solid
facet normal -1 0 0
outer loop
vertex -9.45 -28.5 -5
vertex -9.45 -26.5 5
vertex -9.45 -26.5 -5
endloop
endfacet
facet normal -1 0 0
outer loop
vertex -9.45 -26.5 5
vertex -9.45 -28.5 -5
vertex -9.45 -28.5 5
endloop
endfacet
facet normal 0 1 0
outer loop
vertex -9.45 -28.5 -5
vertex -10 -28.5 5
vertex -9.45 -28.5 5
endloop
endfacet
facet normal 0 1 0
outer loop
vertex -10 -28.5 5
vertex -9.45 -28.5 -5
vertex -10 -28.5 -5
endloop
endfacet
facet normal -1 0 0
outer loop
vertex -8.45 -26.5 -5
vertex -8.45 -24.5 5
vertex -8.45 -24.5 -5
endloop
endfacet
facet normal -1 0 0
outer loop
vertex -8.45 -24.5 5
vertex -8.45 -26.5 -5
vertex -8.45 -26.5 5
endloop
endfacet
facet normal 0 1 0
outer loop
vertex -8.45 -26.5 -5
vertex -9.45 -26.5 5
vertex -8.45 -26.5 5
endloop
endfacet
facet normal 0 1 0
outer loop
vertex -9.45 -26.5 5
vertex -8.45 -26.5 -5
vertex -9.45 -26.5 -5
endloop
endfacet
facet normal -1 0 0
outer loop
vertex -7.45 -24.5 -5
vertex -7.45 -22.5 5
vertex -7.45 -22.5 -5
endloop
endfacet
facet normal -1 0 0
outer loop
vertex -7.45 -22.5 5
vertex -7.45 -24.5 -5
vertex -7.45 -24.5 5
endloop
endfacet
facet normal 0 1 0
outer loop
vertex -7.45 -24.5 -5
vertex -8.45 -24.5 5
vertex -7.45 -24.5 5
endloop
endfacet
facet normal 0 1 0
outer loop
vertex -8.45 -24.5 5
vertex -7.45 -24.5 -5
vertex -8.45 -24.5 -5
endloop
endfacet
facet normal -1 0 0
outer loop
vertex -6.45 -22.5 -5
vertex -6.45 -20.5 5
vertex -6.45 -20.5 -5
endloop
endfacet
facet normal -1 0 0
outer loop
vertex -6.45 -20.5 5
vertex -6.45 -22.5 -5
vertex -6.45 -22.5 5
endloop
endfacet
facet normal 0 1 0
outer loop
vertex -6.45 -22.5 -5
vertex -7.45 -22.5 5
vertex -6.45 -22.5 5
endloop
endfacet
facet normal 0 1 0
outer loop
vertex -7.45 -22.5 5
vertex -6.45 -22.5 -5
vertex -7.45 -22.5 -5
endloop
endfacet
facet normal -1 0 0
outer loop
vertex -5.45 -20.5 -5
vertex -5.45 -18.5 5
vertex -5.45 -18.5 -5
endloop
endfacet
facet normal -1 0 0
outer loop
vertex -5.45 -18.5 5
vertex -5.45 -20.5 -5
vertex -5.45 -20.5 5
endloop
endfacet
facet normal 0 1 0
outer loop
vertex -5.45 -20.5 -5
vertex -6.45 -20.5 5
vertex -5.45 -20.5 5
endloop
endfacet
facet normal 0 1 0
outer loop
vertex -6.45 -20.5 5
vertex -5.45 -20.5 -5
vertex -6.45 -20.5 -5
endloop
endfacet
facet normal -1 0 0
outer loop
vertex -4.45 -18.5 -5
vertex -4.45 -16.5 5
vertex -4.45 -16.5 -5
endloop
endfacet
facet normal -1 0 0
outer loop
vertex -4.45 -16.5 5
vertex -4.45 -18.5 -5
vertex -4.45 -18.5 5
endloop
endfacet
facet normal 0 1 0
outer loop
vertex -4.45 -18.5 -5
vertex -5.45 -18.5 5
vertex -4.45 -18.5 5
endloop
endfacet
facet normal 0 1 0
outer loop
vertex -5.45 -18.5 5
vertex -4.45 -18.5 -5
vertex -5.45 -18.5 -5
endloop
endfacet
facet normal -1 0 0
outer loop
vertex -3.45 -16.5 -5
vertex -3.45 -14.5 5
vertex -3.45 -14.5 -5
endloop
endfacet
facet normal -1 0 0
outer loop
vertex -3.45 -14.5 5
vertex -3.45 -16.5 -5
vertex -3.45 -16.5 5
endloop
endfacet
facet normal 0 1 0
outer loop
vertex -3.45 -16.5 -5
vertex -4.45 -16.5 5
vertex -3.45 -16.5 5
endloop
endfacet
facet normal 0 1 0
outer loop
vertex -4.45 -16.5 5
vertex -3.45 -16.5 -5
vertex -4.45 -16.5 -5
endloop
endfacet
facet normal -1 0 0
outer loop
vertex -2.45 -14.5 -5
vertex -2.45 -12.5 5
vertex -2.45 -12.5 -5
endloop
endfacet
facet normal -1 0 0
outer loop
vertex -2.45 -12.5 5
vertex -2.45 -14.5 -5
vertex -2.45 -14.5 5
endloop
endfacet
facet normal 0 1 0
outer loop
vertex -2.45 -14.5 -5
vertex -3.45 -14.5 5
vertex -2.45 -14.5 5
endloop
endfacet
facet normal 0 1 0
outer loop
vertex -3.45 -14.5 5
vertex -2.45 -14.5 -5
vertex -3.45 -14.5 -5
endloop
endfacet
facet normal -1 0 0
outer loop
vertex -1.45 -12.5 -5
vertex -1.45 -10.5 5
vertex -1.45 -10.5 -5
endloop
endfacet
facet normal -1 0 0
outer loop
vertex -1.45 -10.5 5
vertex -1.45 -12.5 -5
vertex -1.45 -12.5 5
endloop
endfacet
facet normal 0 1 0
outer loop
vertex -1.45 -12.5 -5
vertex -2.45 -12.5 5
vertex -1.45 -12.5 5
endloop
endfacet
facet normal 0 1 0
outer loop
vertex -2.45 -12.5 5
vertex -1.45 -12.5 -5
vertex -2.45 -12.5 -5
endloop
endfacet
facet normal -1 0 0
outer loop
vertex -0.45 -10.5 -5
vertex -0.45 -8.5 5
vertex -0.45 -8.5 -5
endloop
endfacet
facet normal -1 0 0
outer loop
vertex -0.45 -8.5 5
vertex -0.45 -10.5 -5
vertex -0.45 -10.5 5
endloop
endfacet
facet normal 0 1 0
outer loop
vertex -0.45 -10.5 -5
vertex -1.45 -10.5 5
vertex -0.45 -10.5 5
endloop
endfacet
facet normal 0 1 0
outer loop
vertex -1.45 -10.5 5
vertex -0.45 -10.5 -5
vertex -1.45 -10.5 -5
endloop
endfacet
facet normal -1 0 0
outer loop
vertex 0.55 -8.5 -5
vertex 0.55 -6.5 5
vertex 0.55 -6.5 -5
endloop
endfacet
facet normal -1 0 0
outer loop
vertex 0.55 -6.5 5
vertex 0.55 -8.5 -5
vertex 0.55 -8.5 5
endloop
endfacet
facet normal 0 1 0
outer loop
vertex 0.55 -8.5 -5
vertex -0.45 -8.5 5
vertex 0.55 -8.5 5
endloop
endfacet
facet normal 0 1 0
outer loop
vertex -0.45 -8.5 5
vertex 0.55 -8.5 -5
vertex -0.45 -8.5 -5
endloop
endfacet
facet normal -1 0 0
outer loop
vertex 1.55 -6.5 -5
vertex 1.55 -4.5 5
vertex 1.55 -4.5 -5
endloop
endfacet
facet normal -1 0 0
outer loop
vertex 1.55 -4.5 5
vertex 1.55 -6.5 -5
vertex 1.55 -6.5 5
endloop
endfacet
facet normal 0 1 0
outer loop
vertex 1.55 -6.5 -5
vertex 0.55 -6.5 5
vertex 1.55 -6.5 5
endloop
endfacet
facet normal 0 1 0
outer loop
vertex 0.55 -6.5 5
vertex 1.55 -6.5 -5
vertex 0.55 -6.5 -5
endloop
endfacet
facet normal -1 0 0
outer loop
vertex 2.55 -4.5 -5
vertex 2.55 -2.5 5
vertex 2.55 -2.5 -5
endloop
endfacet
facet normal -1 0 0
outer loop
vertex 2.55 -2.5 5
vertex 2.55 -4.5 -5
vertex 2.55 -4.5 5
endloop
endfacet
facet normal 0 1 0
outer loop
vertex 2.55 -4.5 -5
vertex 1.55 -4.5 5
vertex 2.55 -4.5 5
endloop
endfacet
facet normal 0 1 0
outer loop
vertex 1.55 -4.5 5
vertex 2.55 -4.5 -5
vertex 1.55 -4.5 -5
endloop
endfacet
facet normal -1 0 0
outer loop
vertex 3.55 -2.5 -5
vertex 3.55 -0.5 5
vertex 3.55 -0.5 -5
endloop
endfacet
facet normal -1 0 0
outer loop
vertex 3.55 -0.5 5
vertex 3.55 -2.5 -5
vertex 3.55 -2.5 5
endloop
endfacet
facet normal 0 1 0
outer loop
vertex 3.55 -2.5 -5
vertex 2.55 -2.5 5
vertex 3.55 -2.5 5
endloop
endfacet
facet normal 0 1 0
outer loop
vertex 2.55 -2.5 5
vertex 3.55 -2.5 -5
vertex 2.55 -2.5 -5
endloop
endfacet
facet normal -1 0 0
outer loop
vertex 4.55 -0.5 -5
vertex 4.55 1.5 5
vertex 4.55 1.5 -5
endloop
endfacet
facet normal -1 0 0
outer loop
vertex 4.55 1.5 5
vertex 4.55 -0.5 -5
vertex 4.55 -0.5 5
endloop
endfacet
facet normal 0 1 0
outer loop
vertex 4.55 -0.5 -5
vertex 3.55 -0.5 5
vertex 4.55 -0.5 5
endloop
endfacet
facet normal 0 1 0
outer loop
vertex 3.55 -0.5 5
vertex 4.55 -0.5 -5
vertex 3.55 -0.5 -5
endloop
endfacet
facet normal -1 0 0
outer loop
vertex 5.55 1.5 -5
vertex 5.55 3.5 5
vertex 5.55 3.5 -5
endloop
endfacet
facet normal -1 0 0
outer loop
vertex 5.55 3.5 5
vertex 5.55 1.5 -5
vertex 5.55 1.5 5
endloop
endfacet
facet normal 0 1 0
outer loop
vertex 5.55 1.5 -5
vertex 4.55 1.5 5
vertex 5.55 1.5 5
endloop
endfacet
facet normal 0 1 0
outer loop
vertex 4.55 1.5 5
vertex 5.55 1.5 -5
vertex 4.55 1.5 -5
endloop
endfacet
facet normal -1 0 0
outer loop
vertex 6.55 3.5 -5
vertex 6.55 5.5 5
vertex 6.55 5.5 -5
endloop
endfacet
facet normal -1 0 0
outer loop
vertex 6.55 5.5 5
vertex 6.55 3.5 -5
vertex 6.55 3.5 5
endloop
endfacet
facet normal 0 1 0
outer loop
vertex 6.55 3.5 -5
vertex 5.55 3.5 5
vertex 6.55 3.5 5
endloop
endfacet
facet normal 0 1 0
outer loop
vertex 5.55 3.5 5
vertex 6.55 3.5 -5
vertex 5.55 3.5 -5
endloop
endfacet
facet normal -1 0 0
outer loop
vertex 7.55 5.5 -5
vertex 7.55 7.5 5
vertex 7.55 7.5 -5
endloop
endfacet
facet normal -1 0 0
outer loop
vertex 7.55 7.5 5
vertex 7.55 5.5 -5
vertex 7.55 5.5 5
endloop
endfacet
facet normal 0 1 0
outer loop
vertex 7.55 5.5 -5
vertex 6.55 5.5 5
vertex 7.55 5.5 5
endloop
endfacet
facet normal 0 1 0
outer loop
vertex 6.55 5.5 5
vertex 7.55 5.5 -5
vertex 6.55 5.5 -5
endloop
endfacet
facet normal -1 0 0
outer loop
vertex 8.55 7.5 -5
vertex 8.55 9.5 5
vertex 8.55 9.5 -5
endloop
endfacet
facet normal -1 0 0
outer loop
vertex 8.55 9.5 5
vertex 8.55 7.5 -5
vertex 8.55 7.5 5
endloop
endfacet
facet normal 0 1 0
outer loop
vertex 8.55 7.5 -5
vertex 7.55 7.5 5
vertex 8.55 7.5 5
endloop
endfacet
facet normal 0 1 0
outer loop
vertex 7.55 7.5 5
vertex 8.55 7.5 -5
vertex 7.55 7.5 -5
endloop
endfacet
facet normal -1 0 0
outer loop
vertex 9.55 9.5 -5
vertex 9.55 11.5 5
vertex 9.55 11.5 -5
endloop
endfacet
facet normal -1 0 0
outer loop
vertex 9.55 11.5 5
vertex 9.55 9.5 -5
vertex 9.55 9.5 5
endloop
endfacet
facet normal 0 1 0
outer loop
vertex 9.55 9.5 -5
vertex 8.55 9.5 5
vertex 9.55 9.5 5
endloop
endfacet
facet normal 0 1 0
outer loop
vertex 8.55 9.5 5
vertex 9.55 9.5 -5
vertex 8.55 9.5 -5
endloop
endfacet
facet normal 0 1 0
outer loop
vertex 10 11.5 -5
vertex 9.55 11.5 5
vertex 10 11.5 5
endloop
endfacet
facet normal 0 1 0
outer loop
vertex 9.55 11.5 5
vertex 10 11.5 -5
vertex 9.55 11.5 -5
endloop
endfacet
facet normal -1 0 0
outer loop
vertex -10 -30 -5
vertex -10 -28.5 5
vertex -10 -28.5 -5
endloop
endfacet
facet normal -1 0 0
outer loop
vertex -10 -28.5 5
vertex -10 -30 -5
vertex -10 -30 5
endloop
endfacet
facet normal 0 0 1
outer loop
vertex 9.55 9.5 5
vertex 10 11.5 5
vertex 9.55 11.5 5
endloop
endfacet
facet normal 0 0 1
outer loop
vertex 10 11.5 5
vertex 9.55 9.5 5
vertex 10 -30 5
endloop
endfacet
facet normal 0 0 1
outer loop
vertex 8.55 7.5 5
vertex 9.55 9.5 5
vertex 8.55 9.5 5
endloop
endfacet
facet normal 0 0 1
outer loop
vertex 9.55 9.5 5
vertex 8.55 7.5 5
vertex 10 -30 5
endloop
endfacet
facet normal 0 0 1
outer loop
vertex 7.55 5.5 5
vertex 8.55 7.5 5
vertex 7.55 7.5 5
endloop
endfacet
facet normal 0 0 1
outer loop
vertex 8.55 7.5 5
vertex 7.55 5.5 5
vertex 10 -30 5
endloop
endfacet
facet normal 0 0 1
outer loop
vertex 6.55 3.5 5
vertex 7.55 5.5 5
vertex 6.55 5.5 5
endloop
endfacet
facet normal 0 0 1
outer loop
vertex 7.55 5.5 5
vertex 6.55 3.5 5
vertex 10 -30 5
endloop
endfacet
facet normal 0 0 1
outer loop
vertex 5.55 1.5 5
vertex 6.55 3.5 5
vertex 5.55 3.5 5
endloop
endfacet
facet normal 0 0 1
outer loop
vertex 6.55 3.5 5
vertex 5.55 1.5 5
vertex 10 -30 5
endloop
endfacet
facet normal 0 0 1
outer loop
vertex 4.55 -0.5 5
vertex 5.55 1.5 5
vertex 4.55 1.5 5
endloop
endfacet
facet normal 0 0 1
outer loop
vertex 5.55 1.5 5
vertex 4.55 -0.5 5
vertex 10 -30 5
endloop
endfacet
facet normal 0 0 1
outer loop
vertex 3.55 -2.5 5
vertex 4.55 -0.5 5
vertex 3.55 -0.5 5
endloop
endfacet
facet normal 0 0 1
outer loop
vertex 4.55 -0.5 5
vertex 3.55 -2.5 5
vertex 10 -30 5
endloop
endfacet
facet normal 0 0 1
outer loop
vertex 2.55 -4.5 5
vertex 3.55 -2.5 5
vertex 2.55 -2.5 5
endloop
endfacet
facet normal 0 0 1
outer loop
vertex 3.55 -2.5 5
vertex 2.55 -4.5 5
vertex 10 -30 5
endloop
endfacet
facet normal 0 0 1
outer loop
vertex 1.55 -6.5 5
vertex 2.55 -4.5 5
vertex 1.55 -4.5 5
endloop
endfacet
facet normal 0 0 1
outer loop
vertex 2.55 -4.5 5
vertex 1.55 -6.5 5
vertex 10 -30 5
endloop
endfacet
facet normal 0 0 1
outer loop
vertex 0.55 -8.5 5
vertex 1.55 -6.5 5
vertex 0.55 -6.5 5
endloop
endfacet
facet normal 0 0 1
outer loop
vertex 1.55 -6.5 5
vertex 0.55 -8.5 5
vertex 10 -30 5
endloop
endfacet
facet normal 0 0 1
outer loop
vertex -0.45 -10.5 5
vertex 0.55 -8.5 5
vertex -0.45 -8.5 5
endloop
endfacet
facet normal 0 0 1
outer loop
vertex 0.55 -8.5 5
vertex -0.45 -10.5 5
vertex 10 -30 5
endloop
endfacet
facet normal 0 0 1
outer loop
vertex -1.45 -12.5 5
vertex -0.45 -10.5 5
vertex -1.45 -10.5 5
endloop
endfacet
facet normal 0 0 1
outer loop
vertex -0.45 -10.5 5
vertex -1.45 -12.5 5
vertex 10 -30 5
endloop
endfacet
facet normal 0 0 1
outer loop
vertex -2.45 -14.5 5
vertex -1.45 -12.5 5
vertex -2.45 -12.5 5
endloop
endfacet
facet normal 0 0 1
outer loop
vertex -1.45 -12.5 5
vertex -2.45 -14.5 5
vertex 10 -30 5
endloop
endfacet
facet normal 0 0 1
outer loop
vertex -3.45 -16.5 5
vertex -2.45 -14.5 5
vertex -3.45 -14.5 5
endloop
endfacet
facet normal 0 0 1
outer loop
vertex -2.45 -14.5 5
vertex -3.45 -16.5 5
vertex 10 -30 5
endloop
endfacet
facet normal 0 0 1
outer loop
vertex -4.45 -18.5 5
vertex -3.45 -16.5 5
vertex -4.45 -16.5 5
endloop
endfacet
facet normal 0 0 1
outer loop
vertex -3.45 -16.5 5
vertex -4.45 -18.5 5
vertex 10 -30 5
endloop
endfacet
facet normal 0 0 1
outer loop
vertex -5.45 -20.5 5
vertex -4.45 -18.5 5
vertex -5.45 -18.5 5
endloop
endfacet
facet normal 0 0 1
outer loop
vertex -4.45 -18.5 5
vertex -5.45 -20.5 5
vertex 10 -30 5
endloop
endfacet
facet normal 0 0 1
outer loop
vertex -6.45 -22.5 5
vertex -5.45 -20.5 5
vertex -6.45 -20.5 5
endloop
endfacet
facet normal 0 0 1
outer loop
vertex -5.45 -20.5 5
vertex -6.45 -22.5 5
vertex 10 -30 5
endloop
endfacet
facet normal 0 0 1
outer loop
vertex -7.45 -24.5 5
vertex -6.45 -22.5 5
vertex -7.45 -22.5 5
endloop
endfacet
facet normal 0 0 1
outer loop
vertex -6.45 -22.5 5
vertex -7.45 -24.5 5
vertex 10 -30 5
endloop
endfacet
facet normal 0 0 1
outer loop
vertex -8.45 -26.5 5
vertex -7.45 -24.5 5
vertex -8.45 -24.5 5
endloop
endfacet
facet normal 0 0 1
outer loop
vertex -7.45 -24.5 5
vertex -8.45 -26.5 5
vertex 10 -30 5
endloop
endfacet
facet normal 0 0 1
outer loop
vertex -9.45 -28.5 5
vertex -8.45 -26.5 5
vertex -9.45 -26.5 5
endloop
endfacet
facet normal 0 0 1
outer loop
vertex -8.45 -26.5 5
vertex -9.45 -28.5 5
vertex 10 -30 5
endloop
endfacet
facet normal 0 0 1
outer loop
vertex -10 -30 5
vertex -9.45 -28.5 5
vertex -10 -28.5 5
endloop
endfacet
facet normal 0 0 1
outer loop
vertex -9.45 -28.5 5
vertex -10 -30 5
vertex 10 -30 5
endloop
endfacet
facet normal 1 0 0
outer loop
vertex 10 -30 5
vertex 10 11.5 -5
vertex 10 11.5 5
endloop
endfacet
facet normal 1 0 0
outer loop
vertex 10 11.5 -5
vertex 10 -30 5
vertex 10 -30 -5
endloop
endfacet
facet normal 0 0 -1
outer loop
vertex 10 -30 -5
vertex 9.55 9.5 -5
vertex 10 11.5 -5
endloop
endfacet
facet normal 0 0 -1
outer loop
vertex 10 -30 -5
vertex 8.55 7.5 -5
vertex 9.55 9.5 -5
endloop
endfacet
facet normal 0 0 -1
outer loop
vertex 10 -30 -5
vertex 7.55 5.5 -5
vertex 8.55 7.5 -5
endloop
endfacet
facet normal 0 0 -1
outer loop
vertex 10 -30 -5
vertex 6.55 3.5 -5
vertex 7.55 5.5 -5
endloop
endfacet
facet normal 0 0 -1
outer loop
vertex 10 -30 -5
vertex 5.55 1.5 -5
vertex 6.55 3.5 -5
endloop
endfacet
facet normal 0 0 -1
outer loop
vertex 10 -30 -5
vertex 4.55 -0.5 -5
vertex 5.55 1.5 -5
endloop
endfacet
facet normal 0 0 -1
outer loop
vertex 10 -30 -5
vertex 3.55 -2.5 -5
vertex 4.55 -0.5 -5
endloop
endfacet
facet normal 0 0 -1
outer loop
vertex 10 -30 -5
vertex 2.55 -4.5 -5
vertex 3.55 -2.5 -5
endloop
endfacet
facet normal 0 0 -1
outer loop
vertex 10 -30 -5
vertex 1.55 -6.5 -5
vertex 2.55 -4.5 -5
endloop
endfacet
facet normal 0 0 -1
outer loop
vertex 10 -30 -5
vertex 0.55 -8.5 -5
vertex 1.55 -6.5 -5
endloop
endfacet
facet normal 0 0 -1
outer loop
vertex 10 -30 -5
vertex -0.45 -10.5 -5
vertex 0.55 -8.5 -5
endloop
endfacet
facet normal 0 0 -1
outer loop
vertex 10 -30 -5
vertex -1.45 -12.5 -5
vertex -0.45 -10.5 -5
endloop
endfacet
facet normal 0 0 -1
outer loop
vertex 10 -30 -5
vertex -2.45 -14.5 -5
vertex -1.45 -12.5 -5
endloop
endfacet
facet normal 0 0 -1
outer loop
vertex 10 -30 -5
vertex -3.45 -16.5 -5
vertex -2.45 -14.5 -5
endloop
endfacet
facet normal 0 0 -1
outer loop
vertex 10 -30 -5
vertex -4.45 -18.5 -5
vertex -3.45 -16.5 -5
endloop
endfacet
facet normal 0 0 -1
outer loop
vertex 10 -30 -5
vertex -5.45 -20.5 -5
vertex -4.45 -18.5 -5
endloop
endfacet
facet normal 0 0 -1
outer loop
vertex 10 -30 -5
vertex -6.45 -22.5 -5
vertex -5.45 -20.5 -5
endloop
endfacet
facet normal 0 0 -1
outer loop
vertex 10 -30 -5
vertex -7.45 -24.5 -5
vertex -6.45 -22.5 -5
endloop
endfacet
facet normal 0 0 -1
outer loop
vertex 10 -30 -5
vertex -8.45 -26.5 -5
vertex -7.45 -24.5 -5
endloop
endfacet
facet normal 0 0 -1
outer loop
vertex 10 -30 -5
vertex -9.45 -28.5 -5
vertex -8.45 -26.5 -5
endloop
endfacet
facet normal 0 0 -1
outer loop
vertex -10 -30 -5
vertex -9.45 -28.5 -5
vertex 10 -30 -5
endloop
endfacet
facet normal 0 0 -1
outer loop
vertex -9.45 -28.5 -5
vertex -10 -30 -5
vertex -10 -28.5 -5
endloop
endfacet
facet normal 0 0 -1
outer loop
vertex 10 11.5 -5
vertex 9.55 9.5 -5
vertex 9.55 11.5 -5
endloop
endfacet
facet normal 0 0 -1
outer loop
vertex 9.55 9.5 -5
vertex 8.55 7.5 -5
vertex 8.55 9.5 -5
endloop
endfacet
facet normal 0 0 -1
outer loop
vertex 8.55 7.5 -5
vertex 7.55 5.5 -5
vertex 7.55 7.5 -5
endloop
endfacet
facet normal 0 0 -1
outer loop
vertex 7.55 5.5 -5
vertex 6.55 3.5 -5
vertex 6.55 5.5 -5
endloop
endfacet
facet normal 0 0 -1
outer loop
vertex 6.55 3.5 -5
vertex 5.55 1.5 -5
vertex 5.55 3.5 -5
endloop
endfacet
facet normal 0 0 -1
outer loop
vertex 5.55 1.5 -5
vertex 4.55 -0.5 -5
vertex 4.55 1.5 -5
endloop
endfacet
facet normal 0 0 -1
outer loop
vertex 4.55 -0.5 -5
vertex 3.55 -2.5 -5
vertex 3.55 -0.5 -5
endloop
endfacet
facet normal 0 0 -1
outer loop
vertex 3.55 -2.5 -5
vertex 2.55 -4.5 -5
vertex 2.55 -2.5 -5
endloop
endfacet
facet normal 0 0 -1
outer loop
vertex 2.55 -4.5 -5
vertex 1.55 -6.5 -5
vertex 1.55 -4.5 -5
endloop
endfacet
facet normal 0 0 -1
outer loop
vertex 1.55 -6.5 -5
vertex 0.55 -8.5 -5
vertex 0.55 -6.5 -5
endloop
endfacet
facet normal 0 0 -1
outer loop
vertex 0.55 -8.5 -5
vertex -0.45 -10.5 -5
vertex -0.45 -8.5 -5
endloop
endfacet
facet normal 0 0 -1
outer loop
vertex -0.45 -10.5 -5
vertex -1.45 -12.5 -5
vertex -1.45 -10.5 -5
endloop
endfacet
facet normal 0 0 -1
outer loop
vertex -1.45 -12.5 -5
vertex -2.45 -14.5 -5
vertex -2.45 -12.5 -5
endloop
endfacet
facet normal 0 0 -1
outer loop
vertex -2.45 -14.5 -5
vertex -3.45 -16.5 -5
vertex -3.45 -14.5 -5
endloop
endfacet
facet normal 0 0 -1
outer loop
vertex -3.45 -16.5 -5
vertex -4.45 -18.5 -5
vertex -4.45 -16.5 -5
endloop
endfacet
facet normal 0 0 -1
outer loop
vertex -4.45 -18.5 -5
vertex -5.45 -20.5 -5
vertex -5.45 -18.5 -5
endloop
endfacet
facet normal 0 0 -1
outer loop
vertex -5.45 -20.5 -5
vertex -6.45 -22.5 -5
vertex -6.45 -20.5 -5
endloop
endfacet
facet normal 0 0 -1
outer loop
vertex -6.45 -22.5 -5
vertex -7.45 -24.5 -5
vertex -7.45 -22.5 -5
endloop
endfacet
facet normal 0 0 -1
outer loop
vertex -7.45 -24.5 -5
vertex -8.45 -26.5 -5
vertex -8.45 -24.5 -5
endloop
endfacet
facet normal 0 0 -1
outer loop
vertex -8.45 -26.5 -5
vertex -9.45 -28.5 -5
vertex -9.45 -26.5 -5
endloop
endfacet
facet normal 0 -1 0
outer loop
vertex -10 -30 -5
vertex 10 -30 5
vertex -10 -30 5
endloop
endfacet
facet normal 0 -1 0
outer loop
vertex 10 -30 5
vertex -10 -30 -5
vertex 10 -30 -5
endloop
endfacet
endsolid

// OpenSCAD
difference() {
    cube([20,60,10], center=true);
    j = 2;
    for (i = [-10:10]) {
        translate([i,j,0]) {
            cube([1.1, 61, 11], center=true);
        }
        j = (i + 10) * 2 + 2;
    }
}
